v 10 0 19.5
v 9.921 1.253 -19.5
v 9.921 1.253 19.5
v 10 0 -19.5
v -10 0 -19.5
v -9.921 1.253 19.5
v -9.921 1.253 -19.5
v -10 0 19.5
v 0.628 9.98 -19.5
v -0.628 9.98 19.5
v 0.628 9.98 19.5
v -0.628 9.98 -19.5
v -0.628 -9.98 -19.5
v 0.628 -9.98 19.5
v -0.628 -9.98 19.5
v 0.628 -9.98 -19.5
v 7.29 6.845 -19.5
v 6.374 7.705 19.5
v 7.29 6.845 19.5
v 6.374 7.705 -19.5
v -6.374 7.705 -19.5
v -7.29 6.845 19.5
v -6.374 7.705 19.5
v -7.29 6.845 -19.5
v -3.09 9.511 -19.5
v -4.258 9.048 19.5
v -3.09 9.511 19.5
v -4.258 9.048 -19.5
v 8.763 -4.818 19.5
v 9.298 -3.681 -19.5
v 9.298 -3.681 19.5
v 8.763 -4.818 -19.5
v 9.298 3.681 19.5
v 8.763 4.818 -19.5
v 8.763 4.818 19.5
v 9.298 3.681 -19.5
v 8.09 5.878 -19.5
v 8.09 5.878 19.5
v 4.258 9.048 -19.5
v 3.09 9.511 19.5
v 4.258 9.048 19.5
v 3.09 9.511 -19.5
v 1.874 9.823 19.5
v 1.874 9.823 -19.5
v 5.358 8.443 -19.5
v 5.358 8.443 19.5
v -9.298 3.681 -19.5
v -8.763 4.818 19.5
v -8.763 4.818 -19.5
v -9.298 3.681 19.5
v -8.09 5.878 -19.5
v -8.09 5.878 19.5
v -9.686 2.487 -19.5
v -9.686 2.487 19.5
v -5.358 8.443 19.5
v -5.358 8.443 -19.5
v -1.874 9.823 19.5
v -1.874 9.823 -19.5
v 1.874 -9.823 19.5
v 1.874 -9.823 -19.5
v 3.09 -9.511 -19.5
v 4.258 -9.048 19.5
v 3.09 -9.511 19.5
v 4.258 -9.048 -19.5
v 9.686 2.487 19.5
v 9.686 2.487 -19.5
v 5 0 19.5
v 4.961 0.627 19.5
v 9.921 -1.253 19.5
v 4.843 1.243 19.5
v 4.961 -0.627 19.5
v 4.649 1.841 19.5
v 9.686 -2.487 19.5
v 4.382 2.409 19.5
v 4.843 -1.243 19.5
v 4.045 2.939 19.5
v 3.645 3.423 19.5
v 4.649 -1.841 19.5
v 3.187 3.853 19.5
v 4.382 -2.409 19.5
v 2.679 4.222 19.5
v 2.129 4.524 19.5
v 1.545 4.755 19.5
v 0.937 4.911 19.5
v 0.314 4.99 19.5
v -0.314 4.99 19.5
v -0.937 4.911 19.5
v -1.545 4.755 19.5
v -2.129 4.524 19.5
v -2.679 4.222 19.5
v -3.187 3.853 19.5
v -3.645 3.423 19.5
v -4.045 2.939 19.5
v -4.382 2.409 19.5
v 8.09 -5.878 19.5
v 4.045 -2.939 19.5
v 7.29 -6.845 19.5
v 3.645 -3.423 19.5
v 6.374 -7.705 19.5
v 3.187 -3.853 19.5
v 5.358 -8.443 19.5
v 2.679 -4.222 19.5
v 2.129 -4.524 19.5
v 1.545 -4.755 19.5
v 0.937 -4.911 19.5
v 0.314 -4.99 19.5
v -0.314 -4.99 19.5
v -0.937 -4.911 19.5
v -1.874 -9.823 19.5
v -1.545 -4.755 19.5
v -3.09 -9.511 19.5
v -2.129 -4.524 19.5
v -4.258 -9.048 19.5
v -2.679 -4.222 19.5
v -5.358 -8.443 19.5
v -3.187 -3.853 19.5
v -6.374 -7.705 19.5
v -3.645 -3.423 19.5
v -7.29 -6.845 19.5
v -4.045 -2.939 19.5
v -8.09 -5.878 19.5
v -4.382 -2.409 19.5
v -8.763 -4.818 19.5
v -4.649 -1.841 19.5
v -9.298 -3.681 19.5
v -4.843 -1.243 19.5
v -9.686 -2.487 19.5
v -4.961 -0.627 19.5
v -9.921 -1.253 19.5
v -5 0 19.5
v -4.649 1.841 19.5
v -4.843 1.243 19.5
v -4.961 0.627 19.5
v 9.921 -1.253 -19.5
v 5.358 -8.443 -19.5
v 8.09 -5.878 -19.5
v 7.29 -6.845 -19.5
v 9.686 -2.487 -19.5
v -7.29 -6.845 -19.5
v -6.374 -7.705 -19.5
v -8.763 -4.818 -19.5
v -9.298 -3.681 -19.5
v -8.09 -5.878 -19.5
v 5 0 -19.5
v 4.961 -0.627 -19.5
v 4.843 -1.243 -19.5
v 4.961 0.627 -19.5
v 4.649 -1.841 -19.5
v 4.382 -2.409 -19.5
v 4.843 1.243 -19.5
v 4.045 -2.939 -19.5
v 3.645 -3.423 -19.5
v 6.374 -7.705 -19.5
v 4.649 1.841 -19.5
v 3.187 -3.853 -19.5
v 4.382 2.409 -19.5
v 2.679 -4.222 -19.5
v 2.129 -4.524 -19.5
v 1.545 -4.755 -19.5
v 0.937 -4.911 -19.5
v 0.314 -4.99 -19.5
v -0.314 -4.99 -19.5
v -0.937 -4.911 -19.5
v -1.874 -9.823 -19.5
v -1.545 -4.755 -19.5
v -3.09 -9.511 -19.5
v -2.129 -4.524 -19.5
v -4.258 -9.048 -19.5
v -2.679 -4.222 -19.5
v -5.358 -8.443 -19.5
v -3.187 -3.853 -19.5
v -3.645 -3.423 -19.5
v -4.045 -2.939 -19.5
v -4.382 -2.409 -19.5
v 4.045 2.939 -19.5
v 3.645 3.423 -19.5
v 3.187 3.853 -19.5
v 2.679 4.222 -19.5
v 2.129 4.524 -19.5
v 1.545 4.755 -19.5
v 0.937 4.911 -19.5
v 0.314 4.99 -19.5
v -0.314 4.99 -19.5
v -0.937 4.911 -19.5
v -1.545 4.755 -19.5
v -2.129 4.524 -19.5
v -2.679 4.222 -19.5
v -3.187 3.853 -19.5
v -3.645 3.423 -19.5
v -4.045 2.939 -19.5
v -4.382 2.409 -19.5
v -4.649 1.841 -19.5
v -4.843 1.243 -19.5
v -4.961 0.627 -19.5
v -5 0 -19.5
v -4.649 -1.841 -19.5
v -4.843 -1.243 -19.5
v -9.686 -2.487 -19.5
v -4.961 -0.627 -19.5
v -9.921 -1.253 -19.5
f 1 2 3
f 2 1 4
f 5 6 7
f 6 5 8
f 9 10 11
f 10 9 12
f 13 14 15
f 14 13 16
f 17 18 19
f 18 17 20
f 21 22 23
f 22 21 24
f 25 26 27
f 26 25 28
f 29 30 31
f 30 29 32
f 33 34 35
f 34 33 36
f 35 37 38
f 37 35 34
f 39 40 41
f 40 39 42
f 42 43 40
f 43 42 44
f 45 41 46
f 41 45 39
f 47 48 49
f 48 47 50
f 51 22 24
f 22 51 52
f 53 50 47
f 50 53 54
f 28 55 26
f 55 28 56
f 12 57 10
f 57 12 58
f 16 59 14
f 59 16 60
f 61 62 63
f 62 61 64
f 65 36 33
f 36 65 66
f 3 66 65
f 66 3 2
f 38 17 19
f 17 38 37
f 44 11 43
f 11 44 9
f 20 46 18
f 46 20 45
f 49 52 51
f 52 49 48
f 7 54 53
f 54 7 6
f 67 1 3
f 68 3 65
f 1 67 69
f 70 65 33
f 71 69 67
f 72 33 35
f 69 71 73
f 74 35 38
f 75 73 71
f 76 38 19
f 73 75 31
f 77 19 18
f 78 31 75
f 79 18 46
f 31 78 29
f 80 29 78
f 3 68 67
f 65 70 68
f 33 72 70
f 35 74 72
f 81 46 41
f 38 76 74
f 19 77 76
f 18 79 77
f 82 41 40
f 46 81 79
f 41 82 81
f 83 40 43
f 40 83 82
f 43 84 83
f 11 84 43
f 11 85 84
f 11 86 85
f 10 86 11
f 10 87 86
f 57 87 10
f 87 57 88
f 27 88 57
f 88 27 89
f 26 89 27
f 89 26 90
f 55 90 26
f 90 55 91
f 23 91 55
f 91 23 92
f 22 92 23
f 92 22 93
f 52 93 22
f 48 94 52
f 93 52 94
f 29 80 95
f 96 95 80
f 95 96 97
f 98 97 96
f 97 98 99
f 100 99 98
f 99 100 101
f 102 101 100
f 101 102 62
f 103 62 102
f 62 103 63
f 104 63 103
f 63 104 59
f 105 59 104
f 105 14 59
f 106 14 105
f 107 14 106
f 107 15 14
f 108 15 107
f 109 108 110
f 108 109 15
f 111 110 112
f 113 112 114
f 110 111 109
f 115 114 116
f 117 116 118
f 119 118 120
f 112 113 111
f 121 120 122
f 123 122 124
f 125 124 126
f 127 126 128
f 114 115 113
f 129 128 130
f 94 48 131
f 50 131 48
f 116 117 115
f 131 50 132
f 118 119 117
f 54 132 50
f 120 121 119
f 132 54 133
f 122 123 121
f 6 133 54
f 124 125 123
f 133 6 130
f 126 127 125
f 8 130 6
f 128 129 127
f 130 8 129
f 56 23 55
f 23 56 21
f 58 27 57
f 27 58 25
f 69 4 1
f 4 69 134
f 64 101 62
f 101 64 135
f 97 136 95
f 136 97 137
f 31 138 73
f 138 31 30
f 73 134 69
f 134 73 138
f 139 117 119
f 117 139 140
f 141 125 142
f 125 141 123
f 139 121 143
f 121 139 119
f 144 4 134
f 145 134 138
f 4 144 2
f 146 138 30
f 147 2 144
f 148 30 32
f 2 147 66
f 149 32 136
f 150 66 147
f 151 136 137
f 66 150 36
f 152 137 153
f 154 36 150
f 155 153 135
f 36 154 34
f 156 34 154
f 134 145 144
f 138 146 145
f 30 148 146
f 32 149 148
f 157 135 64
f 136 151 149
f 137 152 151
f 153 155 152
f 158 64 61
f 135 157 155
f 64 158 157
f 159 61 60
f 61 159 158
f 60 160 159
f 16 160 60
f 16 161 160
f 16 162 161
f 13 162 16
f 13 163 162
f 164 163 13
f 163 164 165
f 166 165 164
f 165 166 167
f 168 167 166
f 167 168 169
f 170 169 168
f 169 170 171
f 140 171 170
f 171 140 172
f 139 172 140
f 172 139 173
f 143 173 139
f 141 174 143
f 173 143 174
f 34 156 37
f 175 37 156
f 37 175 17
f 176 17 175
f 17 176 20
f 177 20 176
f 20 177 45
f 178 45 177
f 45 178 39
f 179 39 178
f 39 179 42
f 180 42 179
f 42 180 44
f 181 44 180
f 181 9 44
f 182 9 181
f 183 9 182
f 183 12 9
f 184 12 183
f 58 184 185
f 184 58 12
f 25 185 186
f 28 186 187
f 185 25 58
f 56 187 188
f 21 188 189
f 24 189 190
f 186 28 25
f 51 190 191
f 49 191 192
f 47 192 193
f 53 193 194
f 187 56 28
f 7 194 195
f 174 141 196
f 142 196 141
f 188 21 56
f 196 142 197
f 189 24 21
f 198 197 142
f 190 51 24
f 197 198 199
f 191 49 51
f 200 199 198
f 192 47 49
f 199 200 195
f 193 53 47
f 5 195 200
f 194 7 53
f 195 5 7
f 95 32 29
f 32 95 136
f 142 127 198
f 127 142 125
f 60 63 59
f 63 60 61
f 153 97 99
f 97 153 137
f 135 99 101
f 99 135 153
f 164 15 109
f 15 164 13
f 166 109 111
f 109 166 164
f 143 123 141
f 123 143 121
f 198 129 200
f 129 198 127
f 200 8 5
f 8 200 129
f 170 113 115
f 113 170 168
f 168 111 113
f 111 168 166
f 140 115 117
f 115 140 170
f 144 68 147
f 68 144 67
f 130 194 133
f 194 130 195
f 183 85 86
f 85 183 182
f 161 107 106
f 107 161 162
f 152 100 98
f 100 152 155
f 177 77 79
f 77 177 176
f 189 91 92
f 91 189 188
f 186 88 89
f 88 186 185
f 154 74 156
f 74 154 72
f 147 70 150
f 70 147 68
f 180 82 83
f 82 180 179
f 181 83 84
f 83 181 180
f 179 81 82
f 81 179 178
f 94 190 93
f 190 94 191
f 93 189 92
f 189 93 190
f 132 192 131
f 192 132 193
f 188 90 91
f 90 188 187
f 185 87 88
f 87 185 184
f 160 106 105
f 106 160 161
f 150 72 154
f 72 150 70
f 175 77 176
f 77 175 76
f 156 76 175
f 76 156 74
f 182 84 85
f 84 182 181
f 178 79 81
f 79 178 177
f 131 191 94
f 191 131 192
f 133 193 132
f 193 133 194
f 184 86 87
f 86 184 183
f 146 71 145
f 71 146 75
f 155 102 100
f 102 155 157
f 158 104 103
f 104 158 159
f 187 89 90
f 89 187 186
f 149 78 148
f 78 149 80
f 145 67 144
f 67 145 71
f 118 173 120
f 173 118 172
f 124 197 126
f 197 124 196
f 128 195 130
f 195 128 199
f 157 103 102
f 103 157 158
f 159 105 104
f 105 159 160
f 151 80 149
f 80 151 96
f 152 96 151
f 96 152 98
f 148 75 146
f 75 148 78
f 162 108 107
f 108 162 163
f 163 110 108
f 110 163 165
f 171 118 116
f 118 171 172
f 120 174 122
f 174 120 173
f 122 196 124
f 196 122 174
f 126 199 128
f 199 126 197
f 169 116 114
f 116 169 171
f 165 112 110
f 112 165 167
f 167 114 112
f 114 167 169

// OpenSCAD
$fn = 50;


difference() {
	union() {
		translate(v = [0, 0, -19.5000000000]) {
			cylinder(h = 39, r = 10.0000000000);
		}
	}
	union() {
		translate(v = [0, 0, -100.0000000000]) {
			cylinder(h = 200, r = 5.0000000000);
		}
	}
}
